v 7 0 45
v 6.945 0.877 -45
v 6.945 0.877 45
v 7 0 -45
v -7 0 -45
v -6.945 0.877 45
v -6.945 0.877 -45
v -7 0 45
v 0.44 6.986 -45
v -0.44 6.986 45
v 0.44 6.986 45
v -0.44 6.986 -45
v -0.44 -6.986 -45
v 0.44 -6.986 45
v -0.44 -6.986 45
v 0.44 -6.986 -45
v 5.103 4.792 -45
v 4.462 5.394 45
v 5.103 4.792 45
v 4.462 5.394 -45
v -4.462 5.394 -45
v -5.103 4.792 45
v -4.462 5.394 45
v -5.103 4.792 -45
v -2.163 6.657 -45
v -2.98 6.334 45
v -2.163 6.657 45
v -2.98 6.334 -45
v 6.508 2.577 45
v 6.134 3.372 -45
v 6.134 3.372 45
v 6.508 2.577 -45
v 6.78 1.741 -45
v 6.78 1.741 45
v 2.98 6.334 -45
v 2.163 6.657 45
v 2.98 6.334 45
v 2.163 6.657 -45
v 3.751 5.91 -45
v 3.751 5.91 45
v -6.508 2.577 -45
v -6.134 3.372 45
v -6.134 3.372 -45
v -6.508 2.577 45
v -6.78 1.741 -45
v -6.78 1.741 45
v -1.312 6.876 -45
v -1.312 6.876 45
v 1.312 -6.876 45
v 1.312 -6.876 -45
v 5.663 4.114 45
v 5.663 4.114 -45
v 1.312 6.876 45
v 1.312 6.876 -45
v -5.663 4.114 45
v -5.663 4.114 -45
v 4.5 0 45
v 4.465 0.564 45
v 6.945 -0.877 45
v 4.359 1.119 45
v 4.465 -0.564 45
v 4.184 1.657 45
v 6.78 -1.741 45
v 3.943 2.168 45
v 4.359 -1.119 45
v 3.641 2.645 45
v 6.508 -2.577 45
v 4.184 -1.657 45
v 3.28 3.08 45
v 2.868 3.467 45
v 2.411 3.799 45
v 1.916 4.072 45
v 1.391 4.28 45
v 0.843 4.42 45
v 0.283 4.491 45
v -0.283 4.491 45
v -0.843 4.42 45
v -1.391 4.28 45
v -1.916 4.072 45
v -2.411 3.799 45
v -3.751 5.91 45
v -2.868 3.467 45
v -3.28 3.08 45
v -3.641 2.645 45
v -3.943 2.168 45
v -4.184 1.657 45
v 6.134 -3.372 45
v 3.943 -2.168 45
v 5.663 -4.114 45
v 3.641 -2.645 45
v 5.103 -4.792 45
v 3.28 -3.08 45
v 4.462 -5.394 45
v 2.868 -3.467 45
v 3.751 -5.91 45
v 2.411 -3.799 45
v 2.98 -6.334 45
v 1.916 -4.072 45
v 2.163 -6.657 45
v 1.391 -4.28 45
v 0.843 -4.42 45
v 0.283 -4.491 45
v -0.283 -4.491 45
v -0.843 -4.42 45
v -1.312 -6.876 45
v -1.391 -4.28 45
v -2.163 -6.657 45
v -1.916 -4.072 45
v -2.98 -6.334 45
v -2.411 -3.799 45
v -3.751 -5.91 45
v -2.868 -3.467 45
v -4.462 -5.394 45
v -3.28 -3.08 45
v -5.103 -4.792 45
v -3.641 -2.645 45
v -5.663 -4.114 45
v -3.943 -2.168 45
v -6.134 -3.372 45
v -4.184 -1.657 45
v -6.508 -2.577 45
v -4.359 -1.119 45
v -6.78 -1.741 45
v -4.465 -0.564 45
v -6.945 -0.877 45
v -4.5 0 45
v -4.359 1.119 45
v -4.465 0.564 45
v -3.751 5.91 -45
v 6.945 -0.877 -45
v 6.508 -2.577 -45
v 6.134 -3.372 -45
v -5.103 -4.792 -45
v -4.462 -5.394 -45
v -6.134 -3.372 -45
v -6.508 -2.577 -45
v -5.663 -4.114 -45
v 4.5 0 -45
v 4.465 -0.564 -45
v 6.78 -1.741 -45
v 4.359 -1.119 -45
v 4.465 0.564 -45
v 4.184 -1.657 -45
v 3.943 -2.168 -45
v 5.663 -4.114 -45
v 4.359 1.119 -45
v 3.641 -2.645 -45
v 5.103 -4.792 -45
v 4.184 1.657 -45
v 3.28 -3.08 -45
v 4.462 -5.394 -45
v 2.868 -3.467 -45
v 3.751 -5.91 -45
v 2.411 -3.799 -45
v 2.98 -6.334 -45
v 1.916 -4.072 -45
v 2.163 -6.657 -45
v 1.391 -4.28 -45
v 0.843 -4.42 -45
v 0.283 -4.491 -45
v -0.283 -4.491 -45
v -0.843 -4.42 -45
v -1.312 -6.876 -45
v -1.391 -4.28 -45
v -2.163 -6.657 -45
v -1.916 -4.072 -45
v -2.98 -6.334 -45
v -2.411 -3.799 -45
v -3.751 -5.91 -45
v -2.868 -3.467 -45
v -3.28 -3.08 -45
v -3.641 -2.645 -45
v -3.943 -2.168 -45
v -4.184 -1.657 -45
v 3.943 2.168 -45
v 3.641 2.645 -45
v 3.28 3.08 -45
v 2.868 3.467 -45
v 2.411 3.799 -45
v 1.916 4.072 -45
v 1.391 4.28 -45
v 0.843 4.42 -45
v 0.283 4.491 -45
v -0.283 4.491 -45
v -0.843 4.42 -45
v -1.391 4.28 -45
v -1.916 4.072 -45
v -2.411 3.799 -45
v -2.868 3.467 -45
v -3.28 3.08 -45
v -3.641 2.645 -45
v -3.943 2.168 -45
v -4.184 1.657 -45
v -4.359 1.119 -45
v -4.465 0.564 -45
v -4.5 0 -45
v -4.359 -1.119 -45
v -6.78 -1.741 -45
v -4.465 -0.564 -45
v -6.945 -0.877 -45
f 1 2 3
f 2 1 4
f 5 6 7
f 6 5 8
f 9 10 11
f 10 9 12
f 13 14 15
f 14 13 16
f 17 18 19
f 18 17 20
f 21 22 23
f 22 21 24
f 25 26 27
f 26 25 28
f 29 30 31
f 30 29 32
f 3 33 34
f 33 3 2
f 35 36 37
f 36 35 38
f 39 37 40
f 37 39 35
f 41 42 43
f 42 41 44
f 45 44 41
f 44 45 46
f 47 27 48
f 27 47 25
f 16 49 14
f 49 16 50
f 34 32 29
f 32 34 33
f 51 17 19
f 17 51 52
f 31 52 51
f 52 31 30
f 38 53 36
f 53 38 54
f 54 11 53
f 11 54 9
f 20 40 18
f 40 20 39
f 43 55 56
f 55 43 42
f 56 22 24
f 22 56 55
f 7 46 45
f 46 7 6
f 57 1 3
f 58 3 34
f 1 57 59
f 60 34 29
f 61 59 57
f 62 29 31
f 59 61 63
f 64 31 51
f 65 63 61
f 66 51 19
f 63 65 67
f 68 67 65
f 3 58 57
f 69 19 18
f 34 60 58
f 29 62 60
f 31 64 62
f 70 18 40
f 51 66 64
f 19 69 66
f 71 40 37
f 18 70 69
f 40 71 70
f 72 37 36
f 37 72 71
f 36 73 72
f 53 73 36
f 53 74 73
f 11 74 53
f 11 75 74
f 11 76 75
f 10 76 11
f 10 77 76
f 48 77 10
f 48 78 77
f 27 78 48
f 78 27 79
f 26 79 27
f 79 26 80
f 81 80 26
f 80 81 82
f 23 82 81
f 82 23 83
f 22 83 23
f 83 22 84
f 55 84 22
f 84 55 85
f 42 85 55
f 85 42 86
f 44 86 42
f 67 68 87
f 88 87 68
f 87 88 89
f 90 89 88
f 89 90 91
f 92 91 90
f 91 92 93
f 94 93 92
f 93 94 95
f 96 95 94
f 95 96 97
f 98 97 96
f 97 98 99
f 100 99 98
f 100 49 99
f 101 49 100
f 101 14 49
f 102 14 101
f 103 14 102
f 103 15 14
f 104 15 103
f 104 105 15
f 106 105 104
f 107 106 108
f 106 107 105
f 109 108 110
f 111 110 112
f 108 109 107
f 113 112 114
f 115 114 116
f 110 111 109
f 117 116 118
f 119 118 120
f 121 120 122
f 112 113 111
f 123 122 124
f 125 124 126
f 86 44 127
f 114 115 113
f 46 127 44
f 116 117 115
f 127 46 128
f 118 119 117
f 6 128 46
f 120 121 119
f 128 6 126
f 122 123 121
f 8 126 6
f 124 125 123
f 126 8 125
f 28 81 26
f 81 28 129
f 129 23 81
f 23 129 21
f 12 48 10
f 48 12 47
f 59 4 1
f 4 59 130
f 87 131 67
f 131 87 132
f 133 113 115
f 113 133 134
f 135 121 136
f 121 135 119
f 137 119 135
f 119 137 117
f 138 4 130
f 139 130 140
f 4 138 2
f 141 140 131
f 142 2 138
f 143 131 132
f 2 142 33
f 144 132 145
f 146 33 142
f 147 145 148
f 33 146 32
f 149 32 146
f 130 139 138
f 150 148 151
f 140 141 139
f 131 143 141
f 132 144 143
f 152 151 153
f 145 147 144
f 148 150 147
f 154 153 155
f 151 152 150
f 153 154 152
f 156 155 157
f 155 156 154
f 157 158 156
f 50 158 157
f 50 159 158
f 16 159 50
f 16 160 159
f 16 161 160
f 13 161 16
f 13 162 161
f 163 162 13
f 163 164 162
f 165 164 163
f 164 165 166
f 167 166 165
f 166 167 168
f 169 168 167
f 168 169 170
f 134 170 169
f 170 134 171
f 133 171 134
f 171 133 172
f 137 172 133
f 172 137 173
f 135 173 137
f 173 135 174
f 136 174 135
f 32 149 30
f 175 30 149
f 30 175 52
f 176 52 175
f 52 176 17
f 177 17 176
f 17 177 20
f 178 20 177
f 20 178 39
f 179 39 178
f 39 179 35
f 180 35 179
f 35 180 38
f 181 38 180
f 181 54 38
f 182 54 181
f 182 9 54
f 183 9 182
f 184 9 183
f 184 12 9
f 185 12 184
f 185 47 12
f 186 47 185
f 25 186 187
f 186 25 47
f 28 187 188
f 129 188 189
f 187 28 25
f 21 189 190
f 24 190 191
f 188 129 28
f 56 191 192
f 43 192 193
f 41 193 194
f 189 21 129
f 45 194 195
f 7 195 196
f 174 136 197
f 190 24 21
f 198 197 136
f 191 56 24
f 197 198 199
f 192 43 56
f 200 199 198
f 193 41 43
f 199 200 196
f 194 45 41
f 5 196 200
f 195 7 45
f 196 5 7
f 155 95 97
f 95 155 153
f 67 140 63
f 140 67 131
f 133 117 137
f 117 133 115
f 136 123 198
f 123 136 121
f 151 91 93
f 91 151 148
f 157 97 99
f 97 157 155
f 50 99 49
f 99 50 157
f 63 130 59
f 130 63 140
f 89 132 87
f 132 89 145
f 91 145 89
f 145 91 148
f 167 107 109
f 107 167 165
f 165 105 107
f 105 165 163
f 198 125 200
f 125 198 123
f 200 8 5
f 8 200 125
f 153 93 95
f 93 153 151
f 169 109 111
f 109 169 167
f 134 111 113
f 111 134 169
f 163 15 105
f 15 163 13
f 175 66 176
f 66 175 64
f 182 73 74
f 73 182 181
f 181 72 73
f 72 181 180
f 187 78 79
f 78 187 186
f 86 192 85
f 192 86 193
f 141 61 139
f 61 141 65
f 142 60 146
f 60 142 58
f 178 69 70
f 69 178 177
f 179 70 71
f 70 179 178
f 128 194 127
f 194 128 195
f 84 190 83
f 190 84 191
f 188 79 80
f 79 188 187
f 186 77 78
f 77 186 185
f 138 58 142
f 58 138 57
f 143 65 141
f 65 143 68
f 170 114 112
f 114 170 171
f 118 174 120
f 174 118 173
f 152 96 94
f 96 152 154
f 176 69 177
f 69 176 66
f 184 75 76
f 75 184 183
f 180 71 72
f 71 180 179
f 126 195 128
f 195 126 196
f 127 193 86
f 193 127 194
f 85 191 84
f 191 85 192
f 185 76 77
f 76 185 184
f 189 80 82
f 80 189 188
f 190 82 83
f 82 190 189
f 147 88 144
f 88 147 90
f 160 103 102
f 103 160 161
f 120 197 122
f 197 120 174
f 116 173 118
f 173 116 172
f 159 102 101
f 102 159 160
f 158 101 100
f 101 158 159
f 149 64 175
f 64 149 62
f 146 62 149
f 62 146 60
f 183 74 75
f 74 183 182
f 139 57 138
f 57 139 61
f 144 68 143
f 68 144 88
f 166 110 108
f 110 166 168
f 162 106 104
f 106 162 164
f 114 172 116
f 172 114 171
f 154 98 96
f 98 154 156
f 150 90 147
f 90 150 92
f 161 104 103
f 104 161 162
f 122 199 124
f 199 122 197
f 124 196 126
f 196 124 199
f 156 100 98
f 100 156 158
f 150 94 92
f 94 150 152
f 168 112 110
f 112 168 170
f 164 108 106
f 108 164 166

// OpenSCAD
$fn = 50;


difference() {
	union() {
		translate(v = [0, 0, -45.0000000000]) {
			cylinder(h = 90, r = 7.0000000000);
		}
	}
	union() {
		translate(v = [0, 0, -100.0000000000]) {
			cylinder(h = 200, r = 4.5000000000);
		}
	}
}
